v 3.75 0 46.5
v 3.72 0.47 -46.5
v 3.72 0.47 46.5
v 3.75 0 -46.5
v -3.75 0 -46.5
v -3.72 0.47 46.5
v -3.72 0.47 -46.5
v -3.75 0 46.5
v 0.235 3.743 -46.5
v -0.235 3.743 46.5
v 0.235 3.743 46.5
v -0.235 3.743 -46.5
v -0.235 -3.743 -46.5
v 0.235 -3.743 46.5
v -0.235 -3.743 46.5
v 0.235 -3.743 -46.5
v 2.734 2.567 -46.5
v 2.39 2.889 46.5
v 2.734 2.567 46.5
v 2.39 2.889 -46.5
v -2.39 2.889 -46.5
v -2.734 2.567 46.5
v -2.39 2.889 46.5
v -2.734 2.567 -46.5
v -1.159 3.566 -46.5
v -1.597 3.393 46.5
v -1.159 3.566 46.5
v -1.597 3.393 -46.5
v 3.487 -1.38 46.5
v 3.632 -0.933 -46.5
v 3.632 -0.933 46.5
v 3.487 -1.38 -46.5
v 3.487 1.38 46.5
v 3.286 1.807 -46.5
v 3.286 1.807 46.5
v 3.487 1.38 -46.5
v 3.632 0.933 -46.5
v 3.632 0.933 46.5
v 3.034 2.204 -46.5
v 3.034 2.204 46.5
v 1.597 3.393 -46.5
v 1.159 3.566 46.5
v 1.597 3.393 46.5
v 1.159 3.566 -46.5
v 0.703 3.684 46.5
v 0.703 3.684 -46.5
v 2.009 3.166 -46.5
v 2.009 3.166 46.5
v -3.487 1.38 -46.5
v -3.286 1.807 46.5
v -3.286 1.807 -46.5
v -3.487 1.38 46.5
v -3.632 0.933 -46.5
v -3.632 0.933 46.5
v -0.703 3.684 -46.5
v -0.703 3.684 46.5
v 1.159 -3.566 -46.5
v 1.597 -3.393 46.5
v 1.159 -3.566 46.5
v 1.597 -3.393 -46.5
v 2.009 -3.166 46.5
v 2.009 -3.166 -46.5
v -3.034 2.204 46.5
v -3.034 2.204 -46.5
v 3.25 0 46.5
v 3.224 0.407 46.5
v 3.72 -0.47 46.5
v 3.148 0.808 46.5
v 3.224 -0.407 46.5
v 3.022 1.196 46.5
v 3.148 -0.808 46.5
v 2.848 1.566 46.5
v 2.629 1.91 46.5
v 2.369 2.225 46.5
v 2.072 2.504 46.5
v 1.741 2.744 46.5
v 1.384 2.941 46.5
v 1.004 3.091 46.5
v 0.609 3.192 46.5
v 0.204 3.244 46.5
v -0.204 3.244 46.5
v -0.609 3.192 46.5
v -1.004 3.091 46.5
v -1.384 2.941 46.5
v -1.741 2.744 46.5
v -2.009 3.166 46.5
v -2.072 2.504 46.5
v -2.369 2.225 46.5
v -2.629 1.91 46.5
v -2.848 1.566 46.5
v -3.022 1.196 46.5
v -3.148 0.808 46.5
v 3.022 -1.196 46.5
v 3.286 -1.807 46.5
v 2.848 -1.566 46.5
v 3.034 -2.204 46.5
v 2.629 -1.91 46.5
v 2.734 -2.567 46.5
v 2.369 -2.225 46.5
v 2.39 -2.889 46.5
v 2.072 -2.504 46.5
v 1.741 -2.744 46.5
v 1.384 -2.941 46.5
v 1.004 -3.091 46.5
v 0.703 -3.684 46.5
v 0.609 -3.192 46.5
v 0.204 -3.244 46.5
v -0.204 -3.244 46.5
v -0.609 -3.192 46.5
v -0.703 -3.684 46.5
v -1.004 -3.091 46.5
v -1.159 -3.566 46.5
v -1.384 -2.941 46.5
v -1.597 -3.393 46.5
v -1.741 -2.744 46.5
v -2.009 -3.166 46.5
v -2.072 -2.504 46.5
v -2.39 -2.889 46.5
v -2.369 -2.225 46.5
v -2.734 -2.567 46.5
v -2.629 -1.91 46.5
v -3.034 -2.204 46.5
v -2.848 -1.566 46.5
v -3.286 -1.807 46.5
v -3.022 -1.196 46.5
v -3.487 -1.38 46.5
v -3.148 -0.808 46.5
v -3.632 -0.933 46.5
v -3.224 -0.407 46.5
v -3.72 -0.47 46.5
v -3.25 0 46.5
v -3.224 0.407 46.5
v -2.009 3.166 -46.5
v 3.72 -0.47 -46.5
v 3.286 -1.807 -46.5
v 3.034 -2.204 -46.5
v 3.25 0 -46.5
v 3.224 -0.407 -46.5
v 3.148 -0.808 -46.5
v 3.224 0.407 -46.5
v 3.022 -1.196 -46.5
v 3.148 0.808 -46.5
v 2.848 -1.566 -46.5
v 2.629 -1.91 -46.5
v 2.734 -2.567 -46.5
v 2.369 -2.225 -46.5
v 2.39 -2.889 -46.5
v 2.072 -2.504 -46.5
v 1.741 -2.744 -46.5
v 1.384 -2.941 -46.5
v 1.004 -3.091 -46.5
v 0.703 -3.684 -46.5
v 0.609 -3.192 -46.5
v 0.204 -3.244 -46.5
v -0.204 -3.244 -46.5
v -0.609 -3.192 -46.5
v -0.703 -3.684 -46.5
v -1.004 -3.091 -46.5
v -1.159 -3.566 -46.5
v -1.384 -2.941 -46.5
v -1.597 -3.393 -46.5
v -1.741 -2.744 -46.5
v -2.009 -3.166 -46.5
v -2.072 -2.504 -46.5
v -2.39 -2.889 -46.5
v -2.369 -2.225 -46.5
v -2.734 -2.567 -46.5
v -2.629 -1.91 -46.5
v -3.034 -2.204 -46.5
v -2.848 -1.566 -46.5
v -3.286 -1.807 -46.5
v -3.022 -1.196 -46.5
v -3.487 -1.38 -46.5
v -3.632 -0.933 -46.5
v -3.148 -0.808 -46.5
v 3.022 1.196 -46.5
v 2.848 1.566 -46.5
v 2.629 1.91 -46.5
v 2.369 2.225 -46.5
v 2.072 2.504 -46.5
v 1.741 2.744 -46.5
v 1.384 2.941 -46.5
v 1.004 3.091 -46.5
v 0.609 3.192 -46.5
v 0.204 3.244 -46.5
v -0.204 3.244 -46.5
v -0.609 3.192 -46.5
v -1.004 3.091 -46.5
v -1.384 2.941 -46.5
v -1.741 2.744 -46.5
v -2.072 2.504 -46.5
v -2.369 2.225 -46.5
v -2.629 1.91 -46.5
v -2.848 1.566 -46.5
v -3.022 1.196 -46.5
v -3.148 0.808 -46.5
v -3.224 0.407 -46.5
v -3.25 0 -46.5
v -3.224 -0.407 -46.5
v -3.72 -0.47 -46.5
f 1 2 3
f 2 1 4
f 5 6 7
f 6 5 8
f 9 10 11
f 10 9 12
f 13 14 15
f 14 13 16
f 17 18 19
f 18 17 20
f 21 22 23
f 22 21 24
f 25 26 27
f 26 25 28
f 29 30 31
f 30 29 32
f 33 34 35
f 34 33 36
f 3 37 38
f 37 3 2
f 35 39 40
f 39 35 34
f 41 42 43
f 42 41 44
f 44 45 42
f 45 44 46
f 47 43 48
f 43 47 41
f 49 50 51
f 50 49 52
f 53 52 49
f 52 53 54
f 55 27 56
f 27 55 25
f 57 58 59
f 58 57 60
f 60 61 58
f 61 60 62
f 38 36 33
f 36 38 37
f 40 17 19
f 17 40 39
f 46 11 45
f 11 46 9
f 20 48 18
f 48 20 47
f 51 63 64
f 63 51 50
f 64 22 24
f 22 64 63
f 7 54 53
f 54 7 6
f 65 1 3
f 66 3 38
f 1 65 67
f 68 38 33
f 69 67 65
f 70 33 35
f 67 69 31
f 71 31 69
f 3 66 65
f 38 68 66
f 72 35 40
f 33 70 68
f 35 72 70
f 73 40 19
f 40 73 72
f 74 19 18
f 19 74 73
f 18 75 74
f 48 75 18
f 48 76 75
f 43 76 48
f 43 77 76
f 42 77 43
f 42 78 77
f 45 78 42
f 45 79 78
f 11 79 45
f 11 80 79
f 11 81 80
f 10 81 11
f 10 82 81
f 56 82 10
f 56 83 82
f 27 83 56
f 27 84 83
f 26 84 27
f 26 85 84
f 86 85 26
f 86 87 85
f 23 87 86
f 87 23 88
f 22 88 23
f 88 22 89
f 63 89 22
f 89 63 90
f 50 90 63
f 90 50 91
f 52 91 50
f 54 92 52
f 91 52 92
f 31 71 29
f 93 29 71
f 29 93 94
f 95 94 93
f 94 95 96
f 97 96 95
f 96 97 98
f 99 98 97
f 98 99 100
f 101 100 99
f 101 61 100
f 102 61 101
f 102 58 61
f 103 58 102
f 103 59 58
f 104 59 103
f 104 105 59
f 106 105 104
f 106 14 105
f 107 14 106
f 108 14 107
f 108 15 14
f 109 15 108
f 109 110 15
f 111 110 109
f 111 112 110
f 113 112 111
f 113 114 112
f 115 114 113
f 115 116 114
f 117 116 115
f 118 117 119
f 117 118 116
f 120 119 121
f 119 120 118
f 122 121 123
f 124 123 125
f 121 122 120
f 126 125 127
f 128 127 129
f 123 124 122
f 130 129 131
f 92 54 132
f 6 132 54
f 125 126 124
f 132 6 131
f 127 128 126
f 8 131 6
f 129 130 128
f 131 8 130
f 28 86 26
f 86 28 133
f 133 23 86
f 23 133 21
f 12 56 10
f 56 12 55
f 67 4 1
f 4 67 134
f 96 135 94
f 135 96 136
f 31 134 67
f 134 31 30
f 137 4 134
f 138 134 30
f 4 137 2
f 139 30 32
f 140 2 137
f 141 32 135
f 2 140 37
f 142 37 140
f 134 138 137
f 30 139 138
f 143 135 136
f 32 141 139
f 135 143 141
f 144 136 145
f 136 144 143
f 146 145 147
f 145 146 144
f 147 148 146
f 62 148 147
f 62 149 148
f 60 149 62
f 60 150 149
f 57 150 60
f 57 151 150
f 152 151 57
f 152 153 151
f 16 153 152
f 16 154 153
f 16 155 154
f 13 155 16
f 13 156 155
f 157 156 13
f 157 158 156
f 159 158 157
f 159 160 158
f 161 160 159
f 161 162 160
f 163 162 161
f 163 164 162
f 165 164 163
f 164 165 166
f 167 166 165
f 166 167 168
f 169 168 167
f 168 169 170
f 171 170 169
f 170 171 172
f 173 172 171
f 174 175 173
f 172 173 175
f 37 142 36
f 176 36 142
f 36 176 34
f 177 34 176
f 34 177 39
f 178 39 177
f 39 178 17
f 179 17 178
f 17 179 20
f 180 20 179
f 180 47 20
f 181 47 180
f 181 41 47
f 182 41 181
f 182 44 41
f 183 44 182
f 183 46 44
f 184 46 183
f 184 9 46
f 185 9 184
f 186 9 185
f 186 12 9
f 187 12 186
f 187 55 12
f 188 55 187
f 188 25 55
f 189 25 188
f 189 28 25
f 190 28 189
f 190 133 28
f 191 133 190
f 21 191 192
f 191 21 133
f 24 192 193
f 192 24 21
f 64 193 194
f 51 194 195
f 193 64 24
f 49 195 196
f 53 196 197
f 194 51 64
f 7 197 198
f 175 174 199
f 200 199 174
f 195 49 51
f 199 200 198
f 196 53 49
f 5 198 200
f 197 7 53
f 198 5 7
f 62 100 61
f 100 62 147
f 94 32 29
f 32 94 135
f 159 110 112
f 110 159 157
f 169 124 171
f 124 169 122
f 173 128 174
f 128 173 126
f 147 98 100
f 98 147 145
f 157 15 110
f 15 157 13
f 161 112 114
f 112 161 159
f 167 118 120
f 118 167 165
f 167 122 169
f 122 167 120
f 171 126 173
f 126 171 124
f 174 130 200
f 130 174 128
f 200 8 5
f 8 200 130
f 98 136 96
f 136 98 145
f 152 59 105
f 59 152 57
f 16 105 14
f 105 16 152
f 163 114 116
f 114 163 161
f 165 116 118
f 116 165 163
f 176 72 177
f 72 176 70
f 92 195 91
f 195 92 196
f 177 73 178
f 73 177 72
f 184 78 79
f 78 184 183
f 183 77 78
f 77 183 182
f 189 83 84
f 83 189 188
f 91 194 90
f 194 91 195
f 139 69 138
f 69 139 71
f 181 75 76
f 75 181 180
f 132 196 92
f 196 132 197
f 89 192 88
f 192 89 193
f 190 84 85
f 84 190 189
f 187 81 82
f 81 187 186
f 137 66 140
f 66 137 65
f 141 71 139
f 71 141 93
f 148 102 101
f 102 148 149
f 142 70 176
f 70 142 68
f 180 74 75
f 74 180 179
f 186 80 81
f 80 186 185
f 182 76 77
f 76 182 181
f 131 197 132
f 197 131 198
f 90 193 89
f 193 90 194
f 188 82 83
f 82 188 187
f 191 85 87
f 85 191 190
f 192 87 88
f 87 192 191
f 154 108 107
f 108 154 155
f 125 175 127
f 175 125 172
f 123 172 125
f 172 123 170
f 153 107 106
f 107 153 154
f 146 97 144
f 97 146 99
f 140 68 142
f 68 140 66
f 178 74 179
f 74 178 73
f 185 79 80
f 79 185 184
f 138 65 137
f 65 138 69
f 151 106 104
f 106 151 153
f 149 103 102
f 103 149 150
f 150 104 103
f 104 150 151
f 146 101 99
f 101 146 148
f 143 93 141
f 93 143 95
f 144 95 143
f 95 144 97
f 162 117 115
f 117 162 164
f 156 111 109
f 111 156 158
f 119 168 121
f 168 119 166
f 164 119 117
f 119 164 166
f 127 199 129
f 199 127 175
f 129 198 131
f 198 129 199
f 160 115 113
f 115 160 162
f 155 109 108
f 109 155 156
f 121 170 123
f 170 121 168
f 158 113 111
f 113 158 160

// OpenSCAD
$fn = 50;


difference() {
	union() {
		translate(v = [0, 0, -46.5000000000]) {
			cylinder(h = 93, r = 3.7500000000);
		}
	}
	union() {
		translate(v = [0, 0, -100.0000000000]) {
			cylinder(h = 200, r = 3.2500000000);
		}
	}
}
